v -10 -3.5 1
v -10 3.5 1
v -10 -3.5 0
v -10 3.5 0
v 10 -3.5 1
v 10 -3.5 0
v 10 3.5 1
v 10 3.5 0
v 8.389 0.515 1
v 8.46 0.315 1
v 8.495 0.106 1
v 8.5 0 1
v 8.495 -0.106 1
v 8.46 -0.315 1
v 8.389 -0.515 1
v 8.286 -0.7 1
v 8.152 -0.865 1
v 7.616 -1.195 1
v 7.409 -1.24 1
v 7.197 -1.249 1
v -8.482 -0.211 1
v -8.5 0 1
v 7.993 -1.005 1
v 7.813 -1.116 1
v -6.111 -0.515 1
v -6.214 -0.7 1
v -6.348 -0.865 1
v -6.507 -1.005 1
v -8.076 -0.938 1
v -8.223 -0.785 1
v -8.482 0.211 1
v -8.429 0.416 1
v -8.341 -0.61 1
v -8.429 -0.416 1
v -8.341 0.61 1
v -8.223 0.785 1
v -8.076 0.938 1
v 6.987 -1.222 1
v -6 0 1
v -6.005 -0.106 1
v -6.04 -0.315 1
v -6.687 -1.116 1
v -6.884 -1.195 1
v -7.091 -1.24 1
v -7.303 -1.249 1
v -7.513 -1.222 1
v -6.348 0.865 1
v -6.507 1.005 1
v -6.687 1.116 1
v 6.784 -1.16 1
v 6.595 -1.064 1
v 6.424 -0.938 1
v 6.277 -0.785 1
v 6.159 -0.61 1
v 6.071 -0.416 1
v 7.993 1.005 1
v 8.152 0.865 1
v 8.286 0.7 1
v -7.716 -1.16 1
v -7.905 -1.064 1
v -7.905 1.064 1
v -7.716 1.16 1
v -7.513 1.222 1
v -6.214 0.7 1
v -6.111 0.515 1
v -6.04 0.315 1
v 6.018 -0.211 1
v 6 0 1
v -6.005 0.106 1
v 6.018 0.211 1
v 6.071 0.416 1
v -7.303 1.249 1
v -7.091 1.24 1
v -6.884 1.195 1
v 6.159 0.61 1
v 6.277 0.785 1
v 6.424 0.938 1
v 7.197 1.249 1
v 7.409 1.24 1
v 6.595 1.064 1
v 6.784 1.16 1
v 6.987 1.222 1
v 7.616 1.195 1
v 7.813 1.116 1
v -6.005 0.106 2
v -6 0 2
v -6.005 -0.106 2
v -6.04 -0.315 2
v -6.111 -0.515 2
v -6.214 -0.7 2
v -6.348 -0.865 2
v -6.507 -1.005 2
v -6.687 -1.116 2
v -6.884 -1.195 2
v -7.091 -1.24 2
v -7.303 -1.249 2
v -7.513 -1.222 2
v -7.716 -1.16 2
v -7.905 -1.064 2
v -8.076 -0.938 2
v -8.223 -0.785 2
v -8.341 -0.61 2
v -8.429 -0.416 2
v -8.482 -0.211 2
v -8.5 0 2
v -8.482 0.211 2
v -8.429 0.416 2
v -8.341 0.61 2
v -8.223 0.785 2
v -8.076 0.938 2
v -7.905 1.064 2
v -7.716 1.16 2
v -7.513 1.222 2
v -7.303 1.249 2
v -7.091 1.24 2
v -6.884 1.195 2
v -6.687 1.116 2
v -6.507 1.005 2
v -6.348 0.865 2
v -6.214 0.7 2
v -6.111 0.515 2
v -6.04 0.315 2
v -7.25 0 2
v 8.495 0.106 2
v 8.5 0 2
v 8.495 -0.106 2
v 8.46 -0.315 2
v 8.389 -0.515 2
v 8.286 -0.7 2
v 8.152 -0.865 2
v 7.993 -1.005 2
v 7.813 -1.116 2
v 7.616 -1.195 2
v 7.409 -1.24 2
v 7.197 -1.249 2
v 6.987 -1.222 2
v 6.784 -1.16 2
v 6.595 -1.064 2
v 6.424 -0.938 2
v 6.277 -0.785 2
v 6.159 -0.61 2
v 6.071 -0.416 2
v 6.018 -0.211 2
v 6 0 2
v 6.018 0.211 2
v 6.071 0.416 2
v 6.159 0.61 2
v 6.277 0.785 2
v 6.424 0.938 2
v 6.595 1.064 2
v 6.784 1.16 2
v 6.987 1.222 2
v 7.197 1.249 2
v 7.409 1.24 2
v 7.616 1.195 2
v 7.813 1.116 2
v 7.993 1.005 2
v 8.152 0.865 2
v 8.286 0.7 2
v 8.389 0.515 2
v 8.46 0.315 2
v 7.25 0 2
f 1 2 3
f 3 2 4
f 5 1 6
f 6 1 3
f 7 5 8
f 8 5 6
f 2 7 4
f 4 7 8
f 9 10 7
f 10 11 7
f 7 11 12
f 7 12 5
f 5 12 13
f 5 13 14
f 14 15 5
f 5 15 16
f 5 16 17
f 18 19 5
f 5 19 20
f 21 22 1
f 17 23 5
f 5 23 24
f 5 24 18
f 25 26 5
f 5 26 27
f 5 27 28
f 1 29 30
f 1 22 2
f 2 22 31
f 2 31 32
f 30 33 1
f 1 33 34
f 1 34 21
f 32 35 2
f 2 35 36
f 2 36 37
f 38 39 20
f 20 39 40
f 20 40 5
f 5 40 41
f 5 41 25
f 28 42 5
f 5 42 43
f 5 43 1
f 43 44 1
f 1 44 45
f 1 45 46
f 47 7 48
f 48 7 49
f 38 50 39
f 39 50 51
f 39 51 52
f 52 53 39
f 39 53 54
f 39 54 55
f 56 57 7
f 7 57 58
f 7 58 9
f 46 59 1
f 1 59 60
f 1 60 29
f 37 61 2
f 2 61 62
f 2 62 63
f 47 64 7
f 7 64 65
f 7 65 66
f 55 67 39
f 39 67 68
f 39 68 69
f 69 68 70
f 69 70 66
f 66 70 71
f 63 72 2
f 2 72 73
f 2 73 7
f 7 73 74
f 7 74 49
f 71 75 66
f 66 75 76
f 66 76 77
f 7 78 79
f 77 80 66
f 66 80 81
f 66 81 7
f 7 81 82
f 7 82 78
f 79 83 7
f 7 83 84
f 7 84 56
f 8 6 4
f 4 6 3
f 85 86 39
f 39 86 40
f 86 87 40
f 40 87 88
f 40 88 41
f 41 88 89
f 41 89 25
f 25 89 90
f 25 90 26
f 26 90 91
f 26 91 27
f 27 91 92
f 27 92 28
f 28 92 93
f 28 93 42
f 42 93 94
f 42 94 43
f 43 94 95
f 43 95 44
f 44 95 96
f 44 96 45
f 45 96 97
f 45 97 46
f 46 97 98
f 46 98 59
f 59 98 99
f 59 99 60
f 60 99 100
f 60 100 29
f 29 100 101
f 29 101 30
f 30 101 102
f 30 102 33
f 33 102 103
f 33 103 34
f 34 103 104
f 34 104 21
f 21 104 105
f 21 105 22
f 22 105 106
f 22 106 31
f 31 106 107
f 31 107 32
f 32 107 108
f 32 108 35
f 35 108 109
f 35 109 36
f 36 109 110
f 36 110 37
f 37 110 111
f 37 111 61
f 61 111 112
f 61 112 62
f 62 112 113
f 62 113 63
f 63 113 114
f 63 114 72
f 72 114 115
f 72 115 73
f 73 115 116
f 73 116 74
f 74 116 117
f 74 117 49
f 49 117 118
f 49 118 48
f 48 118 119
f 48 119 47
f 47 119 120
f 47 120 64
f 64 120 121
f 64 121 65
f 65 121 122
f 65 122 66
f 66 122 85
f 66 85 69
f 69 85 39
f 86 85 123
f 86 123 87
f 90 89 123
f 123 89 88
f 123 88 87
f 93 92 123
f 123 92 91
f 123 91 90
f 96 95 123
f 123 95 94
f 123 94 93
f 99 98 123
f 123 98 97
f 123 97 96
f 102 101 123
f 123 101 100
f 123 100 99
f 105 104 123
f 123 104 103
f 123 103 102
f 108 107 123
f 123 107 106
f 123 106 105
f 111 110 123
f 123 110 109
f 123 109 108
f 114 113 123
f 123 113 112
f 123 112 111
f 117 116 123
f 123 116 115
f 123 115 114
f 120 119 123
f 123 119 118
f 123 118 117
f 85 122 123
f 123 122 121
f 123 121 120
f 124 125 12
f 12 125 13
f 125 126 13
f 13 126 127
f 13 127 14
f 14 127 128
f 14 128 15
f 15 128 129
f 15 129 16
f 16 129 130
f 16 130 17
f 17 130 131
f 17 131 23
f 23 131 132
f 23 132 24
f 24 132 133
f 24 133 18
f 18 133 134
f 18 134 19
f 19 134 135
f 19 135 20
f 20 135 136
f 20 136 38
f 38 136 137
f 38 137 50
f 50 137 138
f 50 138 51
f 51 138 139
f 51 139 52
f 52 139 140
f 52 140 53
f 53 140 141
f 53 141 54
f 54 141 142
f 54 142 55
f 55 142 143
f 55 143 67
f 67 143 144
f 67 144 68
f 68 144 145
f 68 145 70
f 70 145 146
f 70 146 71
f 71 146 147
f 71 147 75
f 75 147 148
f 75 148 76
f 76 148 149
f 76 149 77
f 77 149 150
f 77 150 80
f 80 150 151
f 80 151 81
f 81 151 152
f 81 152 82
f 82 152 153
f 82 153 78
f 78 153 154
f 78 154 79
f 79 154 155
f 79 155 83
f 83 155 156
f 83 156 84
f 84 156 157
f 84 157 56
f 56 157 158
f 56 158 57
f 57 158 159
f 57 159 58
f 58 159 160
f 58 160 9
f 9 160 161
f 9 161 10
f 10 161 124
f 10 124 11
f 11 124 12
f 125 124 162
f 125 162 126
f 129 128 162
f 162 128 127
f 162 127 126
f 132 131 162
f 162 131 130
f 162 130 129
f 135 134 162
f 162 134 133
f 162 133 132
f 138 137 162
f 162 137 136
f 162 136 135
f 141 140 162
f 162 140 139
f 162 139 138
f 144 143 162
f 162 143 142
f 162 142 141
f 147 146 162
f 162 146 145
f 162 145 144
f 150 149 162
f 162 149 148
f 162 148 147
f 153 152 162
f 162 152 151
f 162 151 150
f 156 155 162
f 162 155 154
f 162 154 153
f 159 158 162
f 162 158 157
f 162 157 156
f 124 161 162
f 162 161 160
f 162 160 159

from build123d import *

# Parameters (mm, degrees)
SKETCH1_W           = 20
SKETCH1_H           = 7
BOSS_EXTRUDE1_DEPTH = 1
SKETCH2_R           = 1.25
BOSS_EXTRUDE2_DEPTH = 1


with BuildPart() as part:
    # Sketch1 → Boss-Extrude1 (new body)
    with BuildSketch(Plane.XY):
        Rectangle(SKETCH1_W, SKETCH1_H)
    extrude(amount=BOSS_EXTRUDE1_DEPTH)

    # Sketch2 → Boss-Extrude2 (add)
    with BuildSketch(Plane.XY.offset(1)):
        with Locations((-7.25, 0)):
            Circle(SKETCH2_R)
        with Locations((7.25, 0)):
            Circle(SKETCH2_R)
    extrude(amount=BOSS_EXTRUDE2_DEPTH)


solid = part.part
